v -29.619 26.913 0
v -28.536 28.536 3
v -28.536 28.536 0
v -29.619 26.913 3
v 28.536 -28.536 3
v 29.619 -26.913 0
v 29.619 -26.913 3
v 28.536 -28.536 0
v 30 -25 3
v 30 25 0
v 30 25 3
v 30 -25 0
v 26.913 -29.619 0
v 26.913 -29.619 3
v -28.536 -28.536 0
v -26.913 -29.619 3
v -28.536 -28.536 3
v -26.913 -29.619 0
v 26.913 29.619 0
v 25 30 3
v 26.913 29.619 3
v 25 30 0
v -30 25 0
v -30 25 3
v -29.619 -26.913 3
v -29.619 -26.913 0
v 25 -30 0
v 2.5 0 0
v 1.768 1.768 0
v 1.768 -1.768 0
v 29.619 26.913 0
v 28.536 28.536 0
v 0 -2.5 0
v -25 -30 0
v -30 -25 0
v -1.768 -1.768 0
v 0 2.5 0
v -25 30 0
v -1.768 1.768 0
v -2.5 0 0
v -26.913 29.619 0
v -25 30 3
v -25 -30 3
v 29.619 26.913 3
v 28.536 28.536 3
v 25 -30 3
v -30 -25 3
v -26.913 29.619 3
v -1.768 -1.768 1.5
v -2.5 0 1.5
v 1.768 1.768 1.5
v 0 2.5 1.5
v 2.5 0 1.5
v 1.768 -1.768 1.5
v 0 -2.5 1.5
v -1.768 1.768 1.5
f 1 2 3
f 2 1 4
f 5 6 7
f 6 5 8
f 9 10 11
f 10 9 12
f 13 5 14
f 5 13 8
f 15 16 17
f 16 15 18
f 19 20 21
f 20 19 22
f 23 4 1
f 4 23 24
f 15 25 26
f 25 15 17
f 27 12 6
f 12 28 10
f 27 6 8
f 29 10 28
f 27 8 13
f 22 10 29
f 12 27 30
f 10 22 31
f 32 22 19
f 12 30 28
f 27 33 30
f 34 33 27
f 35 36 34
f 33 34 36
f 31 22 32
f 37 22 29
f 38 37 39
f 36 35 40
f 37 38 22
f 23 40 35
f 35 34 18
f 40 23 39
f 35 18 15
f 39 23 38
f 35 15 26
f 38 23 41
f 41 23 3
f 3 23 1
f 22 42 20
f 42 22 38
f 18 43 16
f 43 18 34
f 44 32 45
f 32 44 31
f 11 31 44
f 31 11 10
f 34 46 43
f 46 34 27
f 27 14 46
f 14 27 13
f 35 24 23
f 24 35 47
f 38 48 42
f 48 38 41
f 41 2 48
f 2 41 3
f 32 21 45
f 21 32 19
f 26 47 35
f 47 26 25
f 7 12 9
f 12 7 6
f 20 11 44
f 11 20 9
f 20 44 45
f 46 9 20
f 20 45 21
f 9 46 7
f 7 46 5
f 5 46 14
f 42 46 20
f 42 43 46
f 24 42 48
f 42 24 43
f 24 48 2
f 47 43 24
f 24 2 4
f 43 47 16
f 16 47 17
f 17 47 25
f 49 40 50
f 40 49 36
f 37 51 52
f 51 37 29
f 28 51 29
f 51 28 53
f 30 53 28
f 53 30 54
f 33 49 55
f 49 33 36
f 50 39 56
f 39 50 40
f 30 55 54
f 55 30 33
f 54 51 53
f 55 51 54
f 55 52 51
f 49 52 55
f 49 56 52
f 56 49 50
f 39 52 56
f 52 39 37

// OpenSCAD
// Parameters
plate_size = 60;         // Length and width of the square plate
plate_thickness = 3;     // Thickness of the plate
corner_radius = 5;       // Radius for rounded corners
hole_diameter = 5;       // Diameter of the central hole

module square_plate() {
    difference() {
        // Rounded square plate
        linear_extrude(height = plate_thickness)
            offset(r = corner_radius)
                square([plate_size - 2*corner_radius, plate_size - 2*corner_radius], center = true);

        // Central hole
        translate([0, 0, -1])  // Slightly lower to ensure clean subtraction
            cylinder(h = plate_thickness + 2, d = hole_diameter, center = true);
    }
}

// Render the plate
square_plate();
